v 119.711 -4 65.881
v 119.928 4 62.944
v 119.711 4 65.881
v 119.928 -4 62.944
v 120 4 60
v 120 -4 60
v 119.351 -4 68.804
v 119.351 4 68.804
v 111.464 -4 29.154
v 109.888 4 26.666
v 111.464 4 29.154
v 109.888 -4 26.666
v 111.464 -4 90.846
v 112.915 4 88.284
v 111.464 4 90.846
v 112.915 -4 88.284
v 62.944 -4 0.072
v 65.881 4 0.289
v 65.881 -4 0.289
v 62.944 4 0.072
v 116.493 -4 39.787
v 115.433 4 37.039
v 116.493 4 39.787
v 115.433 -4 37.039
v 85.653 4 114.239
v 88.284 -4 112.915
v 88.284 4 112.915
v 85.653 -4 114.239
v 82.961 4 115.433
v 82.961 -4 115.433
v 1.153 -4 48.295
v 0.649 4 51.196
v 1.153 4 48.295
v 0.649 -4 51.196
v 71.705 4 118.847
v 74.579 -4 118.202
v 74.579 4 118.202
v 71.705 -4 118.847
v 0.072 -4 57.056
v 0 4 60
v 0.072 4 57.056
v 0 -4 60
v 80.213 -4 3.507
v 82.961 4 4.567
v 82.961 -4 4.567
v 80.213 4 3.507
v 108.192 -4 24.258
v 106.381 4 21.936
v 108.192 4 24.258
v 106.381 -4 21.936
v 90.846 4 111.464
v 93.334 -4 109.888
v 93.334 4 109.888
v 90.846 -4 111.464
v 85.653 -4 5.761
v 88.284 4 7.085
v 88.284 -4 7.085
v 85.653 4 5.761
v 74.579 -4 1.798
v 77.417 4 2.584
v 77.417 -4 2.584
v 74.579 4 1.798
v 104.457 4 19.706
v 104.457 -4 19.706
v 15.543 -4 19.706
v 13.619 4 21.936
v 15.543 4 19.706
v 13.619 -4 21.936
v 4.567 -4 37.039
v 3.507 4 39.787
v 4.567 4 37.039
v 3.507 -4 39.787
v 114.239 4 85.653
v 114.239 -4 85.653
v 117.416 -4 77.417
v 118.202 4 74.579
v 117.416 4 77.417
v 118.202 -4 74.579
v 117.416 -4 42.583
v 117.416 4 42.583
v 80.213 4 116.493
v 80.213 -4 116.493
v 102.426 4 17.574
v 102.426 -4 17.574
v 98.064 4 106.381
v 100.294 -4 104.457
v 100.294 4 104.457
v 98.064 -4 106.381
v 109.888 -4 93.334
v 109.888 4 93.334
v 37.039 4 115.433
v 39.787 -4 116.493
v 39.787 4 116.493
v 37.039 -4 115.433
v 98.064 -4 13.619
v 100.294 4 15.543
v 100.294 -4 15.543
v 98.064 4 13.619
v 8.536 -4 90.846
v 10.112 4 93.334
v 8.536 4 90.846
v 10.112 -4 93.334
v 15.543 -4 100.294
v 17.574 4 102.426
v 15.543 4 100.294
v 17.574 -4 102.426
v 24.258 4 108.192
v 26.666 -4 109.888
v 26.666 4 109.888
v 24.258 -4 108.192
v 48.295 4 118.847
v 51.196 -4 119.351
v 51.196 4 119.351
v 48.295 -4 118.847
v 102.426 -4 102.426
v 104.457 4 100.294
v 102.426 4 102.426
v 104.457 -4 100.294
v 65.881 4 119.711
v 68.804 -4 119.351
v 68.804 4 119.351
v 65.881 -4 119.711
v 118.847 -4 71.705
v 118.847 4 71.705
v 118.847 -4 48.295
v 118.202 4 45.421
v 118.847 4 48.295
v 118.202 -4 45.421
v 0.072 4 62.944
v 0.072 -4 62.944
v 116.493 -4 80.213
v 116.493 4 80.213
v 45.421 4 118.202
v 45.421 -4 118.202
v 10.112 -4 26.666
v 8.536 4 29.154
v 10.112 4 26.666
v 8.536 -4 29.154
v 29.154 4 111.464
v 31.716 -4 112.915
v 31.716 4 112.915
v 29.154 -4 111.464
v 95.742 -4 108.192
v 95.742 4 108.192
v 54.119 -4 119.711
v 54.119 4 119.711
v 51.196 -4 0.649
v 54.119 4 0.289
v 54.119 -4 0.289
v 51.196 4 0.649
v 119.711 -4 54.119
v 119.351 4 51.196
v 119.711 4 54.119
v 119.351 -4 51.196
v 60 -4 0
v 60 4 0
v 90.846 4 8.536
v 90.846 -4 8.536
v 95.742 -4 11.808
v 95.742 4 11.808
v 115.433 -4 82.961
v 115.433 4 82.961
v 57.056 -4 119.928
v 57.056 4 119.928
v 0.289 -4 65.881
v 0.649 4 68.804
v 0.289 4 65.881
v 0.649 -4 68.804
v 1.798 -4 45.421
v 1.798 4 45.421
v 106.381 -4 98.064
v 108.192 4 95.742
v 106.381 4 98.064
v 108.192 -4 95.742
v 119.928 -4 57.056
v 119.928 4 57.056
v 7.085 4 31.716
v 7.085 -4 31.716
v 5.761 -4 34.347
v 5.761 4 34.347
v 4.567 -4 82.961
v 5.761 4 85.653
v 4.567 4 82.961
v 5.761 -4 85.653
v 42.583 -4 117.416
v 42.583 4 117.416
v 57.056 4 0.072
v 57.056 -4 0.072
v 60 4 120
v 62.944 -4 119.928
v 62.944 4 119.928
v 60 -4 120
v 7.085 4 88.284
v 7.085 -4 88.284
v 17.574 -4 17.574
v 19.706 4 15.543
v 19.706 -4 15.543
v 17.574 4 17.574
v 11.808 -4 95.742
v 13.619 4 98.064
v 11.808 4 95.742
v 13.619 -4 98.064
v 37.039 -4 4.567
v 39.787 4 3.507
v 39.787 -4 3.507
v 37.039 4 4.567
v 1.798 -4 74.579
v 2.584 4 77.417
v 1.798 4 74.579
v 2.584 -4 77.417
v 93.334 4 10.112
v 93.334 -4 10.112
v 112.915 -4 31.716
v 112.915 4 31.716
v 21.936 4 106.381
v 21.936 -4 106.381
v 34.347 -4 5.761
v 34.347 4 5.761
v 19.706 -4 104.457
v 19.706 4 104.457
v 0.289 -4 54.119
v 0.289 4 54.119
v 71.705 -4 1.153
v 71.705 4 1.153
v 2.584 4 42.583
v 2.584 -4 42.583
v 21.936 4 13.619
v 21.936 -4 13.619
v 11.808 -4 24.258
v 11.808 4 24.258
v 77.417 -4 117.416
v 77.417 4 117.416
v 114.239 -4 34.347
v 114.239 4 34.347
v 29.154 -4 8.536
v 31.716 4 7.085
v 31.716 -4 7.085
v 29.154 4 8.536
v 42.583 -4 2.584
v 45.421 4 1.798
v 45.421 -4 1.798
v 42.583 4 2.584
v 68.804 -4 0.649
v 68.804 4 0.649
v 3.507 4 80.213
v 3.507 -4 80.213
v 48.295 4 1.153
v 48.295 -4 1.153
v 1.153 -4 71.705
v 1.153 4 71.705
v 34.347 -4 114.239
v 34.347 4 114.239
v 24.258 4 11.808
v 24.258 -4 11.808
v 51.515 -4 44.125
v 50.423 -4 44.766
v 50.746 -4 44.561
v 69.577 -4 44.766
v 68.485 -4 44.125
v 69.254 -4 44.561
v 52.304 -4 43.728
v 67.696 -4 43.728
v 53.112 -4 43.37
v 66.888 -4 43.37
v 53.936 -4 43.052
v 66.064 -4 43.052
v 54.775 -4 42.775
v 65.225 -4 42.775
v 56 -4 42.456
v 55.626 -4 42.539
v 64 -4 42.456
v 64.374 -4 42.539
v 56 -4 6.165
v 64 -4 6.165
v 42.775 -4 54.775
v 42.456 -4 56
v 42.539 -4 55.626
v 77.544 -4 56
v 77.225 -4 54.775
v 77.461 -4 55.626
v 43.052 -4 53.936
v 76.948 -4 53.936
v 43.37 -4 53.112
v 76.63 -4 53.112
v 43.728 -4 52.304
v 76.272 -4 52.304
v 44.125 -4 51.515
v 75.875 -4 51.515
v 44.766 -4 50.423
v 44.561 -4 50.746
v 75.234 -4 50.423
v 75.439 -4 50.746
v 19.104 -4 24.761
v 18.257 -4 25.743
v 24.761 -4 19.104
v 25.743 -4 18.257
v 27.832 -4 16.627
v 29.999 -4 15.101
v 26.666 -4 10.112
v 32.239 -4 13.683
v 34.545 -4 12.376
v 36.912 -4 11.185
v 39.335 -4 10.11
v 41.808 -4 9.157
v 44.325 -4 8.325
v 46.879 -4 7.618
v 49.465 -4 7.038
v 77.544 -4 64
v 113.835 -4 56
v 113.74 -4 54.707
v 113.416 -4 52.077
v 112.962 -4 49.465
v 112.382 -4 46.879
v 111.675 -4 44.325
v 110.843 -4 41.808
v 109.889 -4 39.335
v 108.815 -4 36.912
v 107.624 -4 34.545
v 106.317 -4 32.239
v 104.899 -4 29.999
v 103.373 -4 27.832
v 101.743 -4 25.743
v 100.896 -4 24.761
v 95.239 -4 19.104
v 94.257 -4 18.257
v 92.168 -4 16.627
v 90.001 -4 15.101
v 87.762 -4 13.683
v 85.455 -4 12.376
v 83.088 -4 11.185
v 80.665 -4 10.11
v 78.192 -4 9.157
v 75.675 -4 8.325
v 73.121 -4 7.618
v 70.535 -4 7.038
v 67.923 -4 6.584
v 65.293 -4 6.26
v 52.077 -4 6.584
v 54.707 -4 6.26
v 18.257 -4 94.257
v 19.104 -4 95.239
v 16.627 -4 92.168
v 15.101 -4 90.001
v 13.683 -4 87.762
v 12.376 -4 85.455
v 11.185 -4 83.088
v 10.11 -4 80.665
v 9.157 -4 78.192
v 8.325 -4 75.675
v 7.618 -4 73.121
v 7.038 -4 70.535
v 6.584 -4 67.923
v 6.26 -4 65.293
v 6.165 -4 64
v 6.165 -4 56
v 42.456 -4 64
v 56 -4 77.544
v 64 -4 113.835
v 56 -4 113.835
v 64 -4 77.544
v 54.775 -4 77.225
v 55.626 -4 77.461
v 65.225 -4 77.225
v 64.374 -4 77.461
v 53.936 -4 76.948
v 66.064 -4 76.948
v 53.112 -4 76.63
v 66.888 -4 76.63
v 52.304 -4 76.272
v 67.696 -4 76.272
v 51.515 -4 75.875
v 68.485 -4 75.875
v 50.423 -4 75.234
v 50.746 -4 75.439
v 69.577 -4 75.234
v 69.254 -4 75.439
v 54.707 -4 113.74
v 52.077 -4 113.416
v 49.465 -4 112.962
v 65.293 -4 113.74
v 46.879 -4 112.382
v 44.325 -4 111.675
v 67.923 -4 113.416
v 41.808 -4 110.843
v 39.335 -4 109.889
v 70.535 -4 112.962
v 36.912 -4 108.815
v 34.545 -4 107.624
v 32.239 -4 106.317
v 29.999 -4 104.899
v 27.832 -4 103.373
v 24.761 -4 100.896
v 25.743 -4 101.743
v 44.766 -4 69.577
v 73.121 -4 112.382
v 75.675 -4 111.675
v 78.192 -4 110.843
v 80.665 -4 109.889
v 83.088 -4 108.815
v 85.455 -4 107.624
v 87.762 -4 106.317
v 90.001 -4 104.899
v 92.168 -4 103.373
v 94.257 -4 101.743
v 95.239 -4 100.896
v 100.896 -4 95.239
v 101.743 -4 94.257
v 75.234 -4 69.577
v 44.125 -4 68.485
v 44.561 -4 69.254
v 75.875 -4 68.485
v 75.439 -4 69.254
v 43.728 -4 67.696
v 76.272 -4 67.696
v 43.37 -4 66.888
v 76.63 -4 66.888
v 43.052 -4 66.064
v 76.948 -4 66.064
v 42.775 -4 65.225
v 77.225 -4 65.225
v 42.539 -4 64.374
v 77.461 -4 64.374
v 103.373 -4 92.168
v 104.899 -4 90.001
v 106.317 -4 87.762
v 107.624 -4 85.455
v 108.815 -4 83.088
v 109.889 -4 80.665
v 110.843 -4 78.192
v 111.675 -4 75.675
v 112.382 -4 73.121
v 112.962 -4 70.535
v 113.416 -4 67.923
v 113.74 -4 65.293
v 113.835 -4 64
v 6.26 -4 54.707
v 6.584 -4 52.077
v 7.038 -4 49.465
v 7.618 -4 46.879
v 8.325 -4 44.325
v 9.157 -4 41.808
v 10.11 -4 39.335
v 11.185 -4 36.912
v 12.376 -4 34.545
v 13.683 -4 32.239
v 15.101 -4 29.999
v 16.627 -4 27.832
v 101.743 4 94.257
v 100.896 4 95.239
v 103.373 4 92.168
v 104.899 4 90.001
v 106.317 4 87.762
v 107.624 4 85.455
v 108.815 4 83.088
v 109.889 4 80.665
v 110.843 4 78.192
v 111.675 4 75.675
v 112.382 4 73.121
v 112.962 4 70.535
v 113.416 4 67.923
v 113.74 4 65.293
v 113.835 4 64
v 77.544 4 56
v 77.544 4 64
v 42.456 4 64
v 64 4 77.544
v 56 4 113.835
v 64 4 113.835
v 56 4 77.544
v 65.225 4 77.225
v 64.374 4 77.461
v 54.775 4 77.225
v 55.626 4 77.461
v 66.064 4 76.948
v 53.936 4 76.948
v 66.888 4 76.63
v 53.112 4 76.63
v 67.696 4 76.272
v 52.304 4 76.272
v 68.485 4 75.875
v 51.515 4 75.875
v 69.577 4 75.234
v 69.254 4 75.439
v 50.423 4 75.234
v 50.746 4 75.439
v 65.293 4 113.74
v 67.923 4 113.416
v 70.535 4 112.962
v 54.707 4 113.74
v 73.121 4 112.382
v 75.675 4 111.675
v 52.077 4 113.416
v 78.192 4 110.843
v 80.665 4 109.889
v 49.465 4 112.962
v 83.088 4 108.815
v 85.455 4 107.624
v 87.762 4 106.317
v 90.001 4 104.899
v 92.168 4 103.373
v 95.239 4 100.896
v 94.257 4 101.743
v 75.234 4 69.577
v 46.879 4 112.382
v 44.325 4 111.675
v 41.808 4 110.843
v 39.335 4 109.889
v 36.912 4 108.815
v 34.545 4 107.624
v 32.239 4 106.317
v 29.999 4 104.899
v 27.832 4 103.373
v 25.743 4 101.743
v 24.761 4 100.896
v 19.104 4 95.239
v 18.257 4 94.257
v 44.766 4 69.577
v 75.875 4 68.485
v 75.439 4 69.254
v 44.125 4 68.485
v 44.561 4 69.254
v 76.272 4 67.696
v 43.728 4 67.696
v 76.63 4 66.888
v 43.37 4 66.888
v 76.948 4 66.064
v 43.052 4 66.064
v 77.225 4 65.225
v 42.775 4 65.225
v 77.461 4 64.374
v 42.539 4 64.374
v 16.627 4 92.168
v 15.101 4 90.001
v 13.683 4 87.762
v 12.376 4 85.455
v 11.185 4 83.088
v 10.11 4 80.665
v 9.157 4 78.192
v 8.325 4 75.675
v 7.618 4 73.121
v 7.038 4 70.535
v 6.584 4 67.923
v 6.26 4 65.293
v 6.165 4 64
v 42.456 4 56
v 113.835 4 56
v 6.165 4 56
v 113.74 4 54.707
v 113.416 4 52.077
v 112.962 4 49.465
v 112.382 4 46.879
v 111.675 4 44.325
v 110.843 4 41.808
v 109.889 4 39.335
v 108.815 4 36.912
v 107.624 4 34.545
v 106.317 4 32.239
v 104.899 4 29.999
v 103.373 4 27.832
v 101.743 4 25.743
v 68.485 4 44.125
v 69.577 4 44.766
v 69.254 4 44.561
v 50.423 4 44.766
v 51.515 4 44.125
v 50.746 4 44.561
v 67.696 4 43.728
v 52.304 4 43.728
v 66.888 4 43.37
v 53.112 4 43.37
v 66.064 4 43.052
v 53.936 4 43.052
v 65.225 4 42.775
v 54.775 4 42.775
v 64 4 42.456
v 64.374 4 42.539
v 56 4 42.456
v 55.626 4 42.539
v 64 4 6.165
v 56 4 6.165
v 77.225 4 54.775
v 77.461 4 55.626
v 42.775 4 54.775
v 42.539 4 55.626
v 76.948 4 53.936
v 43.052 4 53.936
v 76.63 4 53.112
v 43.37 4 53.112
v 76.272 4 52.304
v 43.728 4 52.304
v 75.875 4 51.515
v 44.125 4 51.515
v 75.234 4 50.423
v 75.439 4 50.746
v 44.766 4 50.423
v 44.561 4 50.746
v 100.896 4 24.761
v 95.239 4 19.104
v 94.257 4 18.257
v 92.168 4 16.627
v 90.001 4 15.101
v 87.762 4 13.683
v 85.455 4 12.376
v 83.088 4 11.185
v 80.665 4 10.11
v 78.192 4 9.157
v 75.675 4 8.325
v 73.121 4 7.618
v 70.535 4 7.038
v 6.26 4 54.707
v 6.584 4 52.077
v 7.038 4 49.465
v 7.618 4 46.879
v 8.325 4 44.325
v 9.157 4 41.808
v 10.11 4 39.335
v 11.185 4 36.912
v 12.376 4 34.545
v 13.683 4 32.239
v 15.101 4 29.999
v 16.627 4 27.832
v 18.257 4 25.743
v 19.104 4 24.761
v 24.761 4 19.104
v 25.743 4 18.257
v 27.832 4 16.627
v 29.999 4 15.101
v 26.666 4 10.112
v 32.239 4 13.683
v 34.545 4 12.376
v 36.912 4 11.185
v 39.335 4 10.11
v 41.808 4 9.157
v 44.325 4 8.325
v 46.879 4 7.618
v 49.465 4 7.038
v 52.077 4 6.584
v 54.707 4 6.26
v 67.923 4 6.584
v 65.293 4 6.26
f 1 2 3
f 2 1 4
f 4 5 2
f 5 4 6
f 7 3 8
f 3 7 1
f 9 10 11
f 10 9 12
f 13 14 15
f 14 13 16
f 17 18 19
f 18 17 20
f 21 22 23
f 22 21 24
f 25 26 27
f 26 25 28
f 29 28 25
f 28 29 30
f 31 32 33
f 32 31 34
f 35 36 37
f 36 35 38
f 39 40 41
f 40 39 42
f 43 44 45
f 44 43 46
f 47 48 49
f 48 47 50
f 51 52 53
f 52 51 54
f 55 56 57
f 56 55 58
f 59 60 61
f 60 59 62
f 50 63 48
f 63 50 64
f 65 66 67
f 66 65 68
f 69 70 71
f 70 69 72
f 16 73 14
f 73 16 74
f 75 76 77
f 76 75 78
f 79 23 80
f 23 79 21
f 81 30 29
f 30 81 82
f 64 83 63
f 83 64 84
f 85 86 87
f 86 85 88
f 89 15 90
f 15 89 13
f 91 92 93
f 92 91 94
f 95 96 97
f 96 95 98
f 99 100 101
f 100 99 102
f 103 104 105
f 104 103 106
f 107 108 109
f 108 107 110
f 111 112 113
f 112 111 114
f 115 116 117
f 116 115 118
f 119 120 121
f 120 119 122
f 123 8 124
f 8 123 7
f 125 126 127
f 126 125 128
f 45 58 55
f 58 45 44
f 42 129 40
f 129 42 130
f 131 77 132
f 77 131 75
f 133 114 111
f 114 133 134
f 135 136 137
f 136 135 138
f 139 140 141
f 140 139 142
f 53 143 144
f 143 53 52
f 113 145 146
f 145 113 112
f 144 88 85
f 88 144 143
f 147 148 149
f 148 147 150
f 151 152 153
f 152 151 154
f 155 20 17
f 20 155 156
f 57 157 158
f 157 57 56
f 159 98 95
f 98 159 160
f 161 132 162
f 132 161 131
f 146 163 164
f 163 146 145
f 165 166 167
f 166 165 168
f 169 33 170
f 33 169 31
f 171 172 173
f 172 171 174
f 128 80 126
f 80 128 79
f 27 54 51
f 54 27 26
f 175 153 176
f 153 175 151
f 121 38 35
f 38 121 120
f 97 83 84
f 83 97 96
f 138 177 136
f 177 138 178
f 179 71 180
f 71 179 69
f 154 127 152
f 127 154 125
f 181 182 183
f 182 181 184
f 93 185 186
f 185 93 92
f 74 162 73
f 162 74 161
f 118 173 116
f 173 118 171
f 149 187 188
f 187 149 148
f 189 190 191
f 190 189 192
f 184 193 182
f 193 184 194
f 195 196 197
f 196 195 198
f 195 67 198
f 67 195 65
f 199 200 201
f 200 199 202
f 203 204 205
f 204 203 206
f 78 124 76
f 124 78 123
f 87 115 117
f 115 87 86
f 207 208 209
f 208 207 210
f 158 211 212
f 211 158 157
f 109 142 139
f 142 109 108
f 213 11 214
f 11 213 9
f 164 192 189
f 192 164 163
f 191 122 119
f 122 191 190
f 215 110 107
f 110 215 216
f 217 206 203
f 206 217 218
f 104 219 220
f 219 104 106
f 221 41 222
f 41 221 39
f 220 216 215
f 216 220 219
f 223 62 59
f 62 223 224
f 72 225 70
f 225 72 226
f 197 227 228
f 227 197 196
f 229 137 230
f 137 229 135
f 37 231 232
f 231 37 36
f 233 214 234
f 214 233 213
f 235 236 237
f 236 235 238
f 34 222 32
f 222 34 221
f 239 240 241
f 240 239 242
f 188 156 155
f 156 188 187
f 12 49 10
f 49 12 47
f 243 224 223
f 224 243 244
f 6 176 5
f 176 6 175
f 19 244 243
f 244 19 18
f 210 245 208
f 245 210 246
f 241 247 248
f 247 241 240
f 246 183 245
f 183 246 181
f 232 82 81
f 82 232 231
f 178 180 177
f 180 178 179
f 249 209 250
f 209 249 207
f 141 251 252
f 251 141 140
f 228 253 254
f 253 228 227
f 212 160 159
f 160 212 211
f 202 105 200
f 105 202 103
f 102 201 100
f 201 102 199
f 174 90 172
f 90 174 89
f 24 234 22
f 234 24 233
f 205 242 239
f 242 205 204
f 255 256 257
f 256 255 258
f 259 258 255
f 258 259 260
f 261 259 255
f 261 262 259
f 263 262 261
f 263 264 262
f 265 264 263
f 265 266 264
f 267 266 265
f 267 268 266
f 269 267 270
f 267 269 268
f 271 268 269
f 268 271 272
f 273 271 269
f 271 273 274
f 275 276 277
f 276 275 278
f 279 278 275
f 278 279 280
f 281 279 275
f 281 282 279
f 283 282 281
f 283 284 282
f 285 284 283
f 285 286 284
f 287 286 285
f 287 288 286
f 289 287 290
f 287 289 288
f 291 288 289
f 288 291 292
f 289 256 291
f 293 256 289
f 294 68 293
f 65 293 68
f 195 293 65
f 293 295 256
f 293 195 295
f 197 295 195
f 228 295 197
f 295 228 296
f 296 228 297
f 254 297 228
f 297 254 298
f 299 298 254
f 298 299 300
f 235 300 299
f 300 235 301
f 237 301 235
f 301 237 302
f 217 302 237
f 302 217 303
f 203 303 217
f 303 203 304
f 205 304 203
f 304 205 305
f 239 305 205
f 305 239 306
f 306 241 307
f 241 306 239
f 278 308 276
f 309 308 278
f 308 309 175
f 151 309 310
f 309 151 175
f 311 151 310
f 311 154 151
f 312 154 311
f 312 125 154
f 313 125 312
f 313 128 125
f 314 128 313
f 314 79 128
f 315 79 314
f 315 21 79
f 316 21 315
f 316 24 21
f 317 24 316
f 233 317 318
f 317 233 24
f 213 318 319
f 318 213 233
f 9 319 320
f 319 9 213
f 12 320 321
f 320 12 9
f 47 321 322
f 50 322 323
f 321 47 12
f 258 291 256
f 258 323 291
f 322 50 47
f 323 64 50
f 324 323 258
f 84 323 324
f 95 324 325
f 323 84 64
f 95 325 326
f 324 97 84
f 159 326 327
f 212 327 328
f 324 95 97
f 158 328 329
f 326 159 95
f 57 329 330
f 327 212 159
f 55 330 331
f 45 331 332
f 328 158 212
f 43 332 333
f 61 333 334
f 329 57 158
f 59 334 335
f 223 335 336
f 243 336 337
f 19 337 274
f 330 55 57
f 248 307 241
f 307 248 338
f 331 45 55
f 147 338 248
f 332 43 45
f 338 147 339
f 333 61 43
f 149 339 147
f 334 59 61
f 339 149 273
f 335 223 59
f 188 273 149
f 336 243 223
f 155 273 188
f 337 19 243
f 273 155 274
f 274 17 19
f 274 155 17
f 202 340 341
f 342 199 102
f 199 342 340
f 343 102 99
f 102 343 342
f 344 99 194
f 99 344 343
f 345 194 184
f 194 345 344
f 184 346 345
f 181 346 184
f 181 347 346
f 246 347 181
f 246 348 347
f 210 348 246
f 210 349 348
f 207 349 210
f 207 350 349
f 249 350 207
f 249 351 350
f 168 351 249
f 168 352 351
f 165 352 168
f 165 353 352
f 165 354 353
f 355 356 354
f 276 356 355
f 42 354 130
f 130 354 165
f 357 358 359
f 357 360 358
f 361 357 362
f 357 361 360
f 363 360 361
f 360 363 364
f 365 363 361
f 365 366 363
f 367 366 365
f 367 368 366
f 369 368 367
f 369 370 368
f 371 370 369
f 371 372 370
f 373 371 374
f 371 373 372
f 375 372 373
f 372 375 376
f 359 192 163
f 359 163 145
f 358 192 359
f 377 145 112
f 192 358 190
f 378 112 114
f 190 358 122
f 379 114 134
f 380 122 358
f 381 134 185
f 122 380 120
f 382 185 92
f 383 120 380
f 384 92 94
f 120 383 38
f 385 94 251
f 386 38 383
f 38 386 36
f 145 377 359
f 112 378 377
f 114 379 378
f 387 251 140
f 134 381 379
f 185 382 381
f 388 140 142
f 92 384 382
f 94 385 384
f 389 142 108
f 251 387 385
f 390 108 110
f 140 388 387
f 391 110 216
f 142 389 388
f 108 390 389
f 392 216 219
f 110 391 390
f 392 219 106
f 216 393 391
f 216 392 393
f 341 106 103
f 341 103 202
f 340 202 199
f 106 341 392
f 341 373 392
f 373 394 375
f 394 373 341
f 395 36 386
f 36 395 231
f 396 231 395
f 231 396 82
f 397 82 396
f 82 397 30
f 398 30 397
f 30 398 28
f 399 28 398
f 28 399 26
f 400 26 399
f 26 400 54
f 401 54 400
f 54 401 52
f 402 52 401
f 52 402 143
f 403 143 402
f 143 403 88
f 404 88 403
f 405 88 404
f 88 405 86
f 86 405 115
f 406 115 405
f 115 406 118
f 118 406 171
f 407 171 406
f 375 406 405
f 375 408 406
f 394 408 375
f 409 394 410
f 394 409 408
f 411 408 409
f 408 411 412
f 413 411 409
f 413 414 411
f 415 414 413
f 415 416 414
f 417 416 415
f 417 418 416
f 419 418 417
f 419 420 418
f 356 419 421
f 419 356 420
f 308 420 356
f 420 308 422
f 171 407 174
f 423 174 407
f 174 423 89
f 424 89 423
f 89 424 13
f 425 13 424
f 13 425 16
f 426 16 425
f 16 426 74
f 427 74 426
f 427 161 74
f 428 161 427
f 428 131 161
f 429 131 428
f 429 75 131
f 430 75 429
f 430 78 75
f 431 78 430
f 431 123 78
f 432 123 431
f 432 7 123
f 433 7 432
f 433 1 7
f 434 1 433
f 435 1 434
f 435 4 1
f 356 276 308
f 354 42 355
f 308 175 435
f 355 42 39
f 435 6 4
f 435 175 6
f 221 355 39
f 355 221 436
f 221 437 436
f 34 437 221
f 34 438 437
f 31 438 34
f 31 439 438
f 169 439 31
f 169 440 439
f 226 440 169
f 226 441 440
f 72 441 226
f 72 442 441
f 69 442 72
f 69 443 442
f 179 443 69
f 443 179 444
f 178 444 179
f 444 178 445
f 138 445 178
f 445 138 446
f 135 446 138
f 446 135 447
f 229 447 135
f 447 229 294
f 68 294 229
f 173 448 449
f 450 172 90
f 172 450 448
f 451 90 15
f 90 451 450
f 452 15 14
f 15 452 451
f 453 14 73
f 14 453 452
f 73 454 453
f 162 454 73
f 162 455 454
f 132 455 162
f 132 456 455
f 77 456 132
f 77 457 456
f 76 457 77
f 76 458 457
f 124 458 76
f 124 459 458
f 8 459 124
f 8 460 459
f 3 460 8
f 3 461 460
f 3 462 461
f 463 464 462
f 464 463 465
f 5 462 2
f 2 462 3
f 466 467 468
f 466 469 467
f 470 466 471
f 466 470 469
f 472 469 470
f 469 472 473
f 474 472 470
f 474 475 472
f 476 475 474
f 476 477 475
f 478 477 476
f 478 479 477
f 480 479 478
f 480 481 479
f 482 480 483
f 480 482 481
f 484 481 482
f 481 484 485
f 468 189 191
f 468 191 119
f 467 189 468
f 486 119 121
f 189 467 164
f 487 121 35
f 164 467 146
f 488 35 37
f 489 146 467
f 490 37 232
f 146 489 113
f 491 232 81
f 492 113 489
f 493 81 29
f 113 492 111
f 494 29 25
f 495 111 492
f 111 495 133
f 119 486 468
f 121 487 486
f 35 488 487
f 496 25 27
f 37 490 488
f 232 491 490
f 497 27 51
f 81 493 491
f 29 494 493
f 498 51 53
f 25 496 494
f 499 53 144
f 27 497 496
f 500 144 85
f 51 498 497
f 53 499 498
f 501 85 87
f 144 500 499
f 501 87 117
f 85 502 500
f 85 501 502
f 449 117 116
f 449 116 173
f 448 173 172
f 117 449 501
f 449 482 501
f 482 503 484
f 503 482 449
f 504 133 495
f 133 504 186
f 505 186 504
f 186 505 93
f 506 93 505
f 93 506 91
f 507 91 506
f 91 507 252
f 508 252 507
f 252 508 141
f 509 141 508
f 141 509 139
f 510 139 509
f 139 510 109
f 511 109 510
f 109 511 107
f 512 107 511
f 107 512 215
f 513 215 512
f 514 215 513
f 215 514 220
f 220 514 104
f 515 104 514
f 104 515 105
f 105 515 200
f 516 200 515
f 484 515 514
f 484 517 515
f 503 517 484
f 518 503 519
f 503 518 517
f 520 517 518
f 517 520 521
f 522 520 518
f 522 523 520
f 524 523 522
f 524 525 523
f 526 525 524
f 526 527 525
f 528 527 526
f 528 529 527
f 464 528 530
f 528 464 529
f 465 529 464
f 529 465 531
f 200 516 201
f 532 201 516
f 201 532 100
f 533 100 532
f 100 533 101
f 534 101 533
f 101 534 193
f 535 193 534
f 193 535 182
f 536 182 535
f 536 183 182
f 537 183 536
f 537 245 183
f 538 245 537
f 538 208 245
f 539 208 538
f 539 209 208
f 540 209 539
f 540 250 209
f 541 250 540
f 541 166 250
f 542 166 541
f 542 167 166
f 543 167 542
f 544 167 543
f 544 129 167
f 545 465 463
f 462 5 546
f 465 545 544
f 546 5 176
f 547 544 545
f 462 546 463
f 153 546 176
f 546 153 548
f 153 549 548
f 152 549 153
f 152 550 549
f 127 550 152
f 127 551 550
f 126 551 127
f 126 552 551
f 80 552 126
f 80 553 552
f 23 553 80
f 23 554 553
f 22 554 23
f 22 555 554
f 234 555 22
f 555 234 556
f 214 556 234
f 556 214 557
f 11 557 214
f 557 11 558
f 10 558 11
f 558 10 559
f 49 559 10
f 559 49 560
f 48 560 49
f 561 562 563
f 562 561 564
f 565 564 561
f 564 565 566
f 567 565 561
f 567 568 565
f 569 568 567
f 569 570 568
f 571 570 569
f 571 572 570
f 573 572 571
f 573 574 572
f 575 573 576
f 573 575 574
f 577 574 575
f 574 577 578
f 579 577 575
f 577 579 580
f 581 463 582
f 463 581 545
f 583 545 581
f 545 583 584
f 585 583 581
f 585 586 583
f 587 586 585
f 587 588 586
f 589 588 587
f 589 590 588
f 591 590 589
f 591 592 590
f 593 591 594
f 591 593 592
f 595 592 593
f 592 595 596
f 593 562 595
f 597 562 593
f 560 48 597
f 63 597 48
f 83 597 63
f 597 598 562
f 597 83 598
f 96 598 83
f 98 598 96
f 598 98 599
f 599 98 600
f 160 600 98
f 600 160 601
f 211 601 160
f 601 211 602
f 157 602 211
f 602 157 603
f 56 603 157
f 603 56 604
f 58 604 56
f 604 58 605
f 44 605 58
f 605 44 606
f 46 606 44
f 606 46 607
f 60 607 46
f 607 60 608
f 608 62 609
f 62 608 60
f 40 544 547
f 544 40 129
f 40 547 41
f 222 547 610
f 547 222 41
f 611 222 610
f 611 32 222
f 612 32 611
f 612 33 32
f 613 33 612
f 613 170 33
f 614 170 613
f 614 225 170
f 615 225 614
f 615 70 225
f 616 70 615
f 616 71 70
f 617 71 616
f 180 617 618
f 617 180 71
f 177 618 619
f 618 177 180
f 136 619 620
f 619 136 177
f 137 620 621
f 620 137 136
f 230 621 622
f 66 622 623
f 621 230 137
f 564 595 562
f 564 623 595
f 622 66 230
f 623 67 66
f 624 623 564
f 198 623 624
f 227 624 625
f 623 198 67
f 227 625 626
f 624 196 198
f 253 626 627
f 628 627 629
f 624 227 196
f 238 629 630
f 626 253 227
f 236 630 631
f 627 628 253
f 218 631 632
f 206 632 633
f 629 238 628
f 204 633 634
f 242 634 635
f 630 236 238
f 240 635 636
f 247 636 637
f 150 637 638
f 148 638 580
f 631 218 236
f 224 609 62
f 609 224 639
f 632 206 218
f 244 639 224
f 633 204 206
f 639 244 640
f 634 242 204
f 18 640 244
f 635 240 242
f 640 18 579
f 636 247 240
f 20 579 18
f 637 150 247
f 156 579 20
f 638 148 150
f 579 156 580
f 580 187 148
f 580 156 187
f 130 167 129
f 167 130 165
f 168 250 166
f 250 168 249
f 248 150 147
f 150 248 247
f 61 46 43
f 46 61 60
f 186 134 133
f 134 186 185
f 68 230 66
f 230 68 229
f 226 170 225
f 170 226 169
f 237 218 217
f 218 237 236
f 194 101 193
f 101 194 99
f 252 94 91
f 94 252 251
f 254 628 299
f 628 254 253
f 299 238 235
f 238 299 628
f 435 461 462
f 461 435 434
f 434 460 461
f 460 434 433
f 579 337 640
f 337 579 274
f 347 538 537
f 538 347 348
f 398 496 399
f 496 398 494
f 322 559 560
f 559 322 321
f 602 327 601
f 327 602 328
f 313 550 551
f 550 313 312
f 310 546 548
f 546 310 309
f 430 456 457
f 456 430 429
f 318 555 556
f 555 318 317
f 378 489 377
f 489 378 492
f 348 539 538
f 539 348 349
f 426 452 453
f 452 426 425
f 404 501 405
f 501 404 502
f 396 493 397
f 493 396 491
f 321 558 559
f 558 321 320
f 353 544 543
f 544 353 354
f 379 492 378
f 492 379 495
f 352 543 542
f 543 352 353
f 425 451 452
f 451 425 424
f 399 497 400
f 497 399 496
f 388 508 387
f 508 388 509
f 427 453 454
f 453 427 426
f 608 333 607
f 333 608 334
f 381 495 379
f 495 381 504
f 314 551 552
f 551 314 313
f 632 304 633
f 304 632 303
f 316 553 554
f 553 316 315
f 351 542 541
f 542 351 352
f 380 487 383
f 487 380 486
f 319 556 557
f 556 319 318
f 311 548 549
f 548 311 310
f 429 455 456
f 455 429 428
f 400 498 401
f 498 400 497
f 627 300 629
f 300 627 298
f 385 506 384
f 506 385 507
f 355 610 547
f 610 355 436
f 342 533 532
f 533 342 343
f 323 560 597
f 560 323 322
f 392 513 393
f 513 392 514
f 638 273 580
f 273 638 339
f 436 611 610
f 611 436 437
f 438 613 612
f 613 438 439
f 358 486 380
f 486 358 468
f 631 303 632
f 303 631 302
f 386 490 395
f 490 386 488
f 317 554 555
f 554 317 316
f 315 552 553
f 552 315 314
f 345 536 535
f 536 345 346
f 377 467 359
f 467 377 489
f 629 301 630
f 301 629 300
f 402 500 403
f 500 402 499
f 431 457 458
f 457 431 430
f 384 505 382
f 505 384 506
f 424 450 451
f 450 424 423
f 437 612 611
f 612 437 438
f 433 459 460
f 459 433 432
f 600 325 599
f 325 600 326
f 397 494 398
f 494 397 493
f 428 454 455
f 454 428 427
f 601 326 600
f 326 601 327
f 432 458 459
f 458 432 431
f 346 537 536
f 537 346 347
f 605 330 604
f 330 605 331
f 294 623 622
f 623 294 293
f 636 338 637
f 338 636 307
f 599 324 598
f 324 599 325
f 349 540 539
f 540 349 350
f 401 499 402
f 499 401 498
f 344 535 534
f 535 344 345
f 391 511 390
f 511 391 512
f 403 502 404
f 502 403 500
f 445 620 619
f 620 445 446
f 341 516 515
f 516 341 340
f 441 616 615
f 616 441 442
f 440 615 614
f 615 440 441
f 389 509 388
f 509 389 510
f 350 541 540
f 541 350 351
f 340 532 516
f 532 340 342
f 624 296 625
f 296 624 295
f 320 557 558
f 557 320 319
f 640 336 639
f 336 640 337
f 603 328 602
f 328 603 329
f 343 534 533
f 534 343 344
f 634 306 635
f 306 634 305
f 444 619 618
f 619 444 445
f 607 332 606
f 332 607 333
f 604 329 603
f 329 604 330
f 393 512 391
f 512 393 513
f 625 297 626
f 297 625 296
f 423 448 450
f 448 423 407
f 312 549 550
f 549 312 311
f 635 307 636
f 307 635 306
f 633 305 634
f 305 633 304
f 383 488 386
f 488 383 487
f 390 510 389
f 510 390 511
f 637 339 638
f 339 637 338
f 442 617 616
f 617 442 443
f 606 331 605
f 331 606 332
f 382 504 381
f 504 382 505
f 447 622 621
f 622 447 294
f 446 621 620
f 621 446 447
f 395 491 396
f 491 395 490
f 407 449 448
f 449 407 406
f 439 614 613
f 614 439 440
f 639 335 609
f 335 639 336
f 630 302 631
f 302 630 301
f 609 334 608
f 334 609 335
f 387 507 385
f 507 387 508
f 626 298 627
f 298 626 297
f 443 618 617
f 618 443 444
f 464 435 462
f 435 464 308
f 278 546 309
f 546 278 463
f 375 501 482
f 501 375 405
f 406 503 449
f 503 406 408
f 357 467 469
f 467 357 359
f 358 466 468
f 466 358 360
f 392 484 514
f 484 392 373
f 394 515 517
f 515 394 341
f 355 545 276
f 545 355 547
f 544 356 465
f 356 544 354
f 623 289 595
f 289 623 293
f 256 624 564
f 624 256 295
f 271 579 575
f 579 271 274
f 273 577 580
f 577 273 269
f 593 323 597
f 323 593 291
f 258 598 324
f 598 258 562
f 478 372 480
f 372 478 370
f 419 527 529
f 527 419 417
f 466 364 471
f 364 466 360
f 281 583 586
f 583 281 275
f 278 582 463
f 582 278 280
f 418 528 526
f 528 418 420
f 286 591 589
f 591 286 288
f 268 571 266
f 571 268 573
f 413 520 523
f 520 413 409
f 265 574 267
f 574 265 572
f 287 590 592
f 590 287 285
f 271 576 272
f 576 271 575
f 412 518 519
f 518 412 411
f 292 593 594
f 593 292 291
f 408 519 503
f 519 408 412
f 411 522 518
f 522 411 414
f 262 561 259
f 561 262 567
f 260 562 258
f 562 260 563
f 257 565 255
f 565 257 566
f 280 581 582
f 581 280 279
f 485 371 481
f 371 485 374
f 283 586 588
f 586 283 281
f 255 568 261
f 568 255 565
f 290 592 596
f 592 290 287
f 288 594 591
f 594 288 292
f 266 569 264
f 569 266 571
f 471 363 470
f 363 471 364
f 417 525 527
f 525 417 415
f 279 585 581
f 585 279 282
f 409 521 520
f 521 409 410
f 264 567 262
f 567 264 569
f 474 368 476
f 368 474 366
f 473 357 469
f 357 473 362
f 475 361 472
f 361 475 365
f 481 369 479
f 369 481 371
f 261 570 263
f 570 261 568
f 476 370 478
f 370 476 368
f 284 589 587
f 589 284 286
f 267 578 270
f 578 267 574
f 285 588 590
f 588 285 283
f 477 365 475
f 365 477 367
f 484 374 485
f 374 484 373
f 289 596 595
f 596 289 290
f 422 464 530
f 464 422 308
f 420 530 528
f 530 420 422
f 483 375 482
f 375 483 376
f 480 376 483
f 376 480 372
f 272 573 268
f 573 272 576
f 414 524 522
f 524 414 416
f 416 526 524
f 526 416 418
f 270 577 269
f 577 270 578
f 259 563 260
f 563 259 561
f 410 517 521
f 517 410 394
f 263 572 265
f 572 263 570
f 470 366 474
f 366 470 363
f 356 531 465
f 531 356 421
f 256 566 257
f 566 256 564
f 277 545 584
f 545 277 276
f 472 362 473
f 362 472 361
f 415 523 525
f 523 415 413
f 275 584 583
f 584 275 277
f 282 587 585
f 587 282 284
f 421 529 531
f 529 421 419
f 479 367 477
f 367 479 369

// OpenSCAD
$fn=128;
/* doodle-meta {"version":1,"parameters":{"outer_diameter":{"label":"Outer diameter","description":"Outer rim diameter","unit":"mm"},"hub_diameter":{"label":"Hub","description":"Hub diameter","unit":"mm"},"spoke_width":{"label":"Spoke width","description":"Spoke bar thickness","unit":"mm"}}} */
// Wheel lies in XZ. FIXED: spokes extend to overlap the rim inner wall.
outer_diameter = 120; // mm
rim_inner_diameter = 108; // mm
hub_diameter = 36; // mm
thickness = 8; // mm
spoke_count = 8; // count
spoke_width = 8; // mm
spoke_reach = 40; // mm from hub overlap start; extends into the rim
translate([outer_diameter/2,thickness/2,outer_diameter/2]) rotate([90,0,0]) union(){
  difference(){cylinder(d=outer_diameter,h=thickness);translate([0,0,-1])cylinder(d=rim_inner_diameter,h=thickness+2);}
  cylinder(d=hub_diameter,h=thickness);
  for(a=[0:360/spoke_count:360-360/spoke_count])rotate([0,0,a])translate([hub_diameter/2-1,-thickness/2,0])cube([spoke_reach,thickness,thickness]);
}
